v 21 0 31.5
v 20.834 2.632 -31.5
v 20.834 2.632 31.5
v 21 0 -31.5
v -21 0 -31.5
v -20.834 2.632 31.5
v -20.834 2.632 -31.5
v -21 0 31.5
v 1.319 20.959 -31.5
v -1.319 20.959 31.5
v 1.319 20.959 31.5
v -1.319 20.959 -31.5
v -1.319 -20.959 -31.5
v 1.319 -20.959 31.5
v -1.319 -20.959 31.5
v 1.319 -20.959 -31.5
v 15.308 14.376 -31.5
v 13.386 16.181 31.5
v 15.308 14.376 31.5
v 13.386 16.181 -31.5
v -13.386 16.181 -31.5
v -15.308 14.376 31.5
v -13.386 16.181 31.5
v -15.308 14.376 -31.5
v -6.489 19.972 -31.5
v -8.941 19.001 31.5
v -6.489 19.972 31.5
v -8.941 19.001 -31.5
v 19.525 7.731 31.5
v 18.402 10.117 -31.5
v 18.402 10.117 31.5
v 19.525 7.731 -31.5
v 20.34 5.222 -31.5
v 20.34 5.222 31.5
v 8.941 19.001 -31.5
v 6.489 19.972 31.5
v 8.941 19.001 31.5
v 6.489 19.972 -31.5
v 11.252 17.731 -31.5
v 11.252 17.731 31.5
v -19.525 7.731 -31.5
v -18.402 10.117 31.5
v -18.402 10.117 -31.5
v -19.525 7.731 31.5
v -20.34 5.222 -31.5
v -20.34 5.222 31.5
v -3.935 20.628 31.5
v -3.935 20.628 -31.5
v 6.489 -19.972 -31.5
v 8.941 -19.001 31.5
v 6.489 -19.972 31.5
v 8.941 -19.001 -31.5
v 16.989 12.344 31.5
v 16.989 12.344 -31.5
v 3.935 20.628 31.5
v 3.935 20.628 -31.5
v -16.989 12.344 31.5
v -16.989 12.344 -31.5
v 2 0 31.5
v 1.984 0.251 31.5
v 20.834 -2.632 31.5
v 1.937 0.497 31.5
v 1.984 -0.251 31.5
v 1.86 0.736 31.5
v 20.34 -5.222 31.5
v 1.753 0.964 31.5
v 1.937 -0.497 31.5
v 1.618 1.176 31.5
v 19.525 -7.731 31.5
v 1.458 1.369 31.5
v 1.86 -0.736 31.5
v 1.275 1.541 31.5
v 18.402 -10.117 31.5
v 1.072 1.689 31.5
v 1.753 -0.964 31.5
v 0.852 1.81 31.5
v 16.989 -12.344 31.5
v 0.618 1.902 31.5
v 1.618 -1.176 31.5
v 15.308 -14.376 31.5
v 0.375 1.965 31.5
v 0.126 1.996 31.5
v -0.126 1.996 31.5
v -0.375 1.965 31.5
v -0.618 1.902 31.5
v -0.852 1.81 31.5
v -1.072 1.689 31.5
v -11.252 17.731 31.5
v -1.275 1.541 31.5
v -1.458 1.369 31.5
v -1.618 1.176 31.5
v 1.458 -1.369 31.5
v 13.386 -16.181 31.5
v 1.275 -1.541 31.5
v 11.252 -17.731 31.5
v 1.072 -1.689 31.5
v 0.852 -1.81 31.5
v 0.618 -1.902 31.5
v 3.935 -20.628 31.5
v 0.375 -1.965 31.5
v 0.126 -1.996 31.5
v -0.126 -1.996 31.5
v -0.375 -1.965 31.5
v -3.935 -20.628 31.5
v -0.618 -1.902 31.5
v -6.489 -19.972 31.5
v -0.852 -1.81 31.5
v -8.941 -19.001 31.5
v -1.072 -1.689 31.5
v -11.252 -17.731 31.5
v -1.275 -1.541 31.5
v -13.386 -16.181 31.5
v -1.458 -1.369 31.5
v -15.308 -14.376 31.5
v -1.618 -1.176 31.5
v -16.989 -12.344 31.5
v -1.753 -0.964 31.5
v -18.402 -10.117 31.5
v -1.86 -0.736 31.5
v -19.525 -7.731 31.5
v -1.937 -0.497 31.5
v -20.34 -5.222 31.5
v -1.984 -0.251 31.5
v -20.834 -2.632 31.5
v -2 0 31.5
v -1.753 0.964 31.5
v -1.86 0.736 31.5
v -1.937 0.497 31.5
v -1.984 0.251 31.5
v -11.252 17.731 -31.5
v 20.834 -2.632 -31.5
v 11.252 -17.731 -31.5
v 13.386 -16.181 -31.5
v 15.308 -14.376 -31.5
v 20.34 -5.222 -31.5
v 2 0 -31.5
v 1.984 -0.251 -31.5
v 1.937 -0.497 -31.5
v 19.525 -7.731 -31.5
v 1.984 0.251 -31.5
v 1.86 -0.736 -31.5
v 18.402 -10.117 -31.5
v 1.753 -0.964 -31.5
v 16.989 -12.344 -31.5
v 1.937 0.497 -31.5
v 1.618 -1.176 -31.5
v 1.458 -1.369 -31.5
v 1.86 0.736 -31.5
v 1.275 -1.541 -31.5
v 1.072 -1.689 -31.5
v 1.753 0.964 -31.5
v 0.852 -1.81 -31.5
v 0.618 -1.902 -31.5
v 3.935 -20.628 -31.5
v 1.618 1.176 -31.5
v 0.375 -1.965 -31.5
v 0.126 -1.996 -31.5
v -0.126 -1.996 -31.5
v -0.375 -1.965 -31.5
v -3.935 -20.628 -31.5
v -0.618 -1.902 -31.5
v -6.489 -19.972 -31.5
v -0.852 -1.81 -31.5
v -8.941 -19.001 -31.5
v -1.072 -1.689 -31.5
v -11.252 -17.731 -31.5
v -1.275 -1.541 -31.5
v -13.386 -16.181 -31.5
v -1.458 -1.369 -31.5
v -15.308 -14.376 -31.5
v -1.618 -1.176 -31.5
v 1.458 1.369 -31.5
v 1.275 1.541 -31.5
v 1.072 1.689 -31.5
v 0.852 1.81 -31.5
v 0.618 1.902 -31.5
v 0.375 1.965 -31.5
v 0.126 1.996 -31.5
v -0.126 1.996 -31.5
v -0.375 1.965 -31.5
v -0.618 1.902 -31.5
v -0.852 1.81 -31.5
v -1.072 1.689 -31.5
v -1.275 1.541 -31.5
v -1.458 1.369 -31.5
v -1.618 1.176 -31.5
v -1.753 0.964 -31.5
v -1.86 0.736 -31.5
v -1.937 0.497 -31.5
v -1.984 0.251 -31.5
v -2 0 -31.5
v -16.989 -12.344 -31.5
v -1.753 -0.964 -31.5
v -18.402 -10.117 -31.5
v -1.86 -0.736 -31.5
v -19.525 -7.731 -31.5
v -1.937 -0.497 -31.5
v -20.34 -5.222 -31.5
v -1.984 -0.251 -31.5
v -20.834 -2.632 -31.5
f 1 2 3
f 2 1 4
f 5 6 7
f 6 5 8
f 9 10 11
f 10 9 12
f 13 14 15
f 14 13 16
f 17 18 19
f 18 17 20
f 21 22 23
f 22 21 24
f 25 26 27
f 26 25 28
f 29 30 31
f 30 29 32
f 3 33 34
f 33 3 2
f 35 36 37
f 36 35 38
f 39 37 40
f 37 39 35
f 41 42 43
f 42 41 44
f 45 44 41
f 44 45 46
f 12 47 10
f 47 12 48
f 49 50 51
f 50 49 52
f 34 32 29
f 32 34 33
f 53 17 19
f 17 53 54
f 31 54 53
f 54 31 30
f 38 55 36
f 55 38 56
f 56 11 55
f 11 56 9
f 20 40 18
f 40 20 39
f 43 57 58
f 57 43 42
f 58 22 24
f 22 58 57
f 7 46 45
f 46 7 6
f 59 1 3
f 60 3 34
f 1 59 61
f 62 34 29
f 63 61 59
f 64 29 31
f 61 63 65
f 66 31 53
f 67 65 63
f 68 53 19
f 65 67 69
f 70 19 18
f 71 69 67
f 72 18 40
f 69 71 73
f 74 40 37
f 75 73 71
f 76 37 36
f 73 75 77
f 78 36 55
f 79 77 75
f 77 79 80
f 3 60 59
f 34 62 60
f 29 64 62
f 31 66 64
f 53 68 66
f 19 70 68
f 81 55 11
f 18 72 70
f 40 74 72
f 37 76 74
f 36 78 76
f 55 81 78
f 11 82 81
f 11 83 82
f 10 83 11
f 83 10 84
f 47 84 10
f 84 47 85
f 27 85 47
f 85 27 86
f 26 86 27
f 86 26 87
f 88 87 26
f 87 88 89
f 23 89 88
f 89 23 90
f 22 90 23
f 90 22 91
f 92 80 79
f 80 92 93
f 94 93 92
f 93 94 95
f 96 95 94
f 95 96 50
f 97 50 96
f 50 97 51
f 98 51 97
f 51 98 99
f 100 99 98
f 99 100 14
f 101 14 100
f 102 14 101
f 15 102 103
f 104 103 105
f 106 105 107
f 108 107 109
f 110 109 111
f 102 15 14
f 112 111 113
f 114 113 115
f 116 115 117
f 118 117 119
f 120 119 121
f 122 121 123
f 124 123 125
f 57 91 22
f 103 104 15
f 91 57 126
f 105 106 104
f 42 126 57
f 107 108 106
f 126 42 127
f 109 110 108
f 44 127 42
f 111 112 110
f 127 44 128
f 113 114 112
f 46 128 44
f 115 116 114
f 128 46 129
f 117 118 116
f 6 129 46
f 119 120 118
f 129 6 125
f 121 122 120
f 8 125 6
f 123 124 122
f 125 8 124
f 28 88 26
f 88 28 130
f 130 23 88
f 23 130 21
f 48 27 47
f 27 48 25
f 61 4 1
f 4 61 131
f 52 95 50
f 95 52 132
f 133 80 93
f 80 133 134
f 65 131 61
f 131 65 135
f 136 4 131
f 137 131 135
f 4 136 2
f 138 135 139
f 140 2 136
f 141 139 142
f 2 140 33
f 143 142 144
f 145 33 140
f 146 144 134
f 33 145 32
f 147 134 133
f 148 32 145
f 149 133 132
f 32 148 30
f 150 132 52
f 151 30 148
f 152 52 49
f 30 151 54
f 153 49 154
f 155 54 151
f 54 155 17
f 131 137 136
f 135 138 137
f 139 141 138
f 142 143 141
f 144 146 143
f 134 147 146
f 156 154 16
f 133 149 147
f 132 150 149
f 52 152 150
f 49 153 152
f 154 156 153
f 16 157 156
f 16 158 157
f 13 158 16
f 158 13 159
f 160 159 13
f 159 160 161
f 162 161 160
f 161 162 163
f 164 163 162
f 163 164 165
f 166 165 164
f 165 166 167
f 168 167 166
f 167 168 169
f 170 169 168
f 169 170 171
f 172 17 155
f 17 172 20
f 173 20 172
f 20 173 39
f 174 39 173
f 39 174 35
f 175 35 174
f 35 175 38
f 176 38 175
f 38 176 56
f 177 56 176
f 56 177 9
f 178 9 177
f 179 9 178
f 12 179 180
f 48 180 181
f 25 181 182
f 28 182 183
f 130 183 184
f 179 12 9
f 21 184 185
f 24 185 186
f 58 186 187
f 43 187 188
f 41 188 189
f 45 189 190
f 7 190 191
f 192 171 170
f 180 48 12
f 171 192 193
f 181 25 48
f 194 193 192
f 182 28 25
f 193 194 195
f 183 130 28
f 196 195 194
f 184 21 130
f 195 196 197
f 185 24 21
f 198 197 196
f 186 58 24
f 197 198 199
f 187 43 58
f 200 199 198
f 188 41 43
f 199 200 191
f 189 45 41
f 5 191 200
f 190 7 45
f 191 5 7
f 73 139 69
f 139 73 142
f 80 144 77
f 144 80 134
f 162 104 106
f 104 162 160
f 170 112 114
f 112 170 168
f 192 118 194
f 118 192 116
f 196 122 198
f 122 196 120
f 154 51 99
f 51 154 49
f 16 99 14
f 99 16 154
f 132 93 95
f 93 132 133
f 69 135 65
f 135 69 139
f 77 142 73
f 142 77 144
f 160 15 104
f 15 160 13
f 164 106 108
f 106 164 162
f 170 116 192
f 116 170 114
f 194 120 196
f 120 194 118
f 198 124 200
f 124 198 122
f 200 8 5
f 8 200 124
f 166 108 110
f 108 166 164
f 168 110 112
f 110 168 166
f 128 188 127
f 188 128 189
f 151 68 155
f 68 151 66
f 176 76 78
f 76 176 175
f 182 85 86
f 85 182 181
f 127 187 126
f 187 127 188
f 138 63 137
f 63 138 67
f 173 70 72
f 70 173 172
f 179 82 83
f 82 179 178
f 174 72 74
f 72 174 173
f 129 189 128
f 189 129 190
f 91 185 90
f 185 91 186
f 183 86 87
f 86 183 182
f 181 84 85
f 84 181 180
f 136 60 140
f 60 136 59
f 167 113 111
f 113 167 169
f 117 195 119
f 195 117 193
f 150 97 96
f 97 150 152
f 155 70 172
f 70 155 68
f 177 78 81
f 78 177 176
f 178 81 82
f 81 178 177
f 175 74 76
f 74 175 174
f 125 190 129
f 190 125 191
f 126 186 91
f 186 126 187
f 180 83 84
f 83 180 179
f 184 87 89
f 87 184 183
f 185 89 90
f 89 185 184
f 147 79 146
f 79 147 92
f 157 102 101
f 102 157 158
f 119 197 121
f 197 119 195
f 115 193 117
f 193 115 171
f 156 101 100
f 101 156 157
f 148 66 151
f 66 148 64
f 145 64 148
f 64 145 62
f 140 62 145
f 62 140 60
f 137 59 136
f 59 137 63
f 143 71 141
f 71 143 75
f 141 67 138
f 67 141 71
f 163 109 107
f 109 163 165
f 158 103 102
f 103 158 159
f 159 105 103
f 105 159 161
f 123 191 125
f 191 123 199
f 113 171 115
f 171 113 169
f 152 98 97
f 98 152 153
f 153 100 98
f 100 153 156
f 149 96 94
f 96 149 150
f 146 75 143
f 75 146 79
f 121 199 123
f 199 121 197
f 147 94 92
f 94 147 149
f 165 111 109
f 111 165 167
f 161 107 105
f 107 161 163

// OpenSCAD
$fn = 50;


difference() {
	union() {
		translate(v = [0, 0, -31.5000000000]) {
			cylinder(h = 63, r = 21.0000000000);
		}
	}
	union() {
		translate(v = [0, 0, -100.0000000000]) {
			cylinder(h = 200, r = 2);
		}
	}
}
